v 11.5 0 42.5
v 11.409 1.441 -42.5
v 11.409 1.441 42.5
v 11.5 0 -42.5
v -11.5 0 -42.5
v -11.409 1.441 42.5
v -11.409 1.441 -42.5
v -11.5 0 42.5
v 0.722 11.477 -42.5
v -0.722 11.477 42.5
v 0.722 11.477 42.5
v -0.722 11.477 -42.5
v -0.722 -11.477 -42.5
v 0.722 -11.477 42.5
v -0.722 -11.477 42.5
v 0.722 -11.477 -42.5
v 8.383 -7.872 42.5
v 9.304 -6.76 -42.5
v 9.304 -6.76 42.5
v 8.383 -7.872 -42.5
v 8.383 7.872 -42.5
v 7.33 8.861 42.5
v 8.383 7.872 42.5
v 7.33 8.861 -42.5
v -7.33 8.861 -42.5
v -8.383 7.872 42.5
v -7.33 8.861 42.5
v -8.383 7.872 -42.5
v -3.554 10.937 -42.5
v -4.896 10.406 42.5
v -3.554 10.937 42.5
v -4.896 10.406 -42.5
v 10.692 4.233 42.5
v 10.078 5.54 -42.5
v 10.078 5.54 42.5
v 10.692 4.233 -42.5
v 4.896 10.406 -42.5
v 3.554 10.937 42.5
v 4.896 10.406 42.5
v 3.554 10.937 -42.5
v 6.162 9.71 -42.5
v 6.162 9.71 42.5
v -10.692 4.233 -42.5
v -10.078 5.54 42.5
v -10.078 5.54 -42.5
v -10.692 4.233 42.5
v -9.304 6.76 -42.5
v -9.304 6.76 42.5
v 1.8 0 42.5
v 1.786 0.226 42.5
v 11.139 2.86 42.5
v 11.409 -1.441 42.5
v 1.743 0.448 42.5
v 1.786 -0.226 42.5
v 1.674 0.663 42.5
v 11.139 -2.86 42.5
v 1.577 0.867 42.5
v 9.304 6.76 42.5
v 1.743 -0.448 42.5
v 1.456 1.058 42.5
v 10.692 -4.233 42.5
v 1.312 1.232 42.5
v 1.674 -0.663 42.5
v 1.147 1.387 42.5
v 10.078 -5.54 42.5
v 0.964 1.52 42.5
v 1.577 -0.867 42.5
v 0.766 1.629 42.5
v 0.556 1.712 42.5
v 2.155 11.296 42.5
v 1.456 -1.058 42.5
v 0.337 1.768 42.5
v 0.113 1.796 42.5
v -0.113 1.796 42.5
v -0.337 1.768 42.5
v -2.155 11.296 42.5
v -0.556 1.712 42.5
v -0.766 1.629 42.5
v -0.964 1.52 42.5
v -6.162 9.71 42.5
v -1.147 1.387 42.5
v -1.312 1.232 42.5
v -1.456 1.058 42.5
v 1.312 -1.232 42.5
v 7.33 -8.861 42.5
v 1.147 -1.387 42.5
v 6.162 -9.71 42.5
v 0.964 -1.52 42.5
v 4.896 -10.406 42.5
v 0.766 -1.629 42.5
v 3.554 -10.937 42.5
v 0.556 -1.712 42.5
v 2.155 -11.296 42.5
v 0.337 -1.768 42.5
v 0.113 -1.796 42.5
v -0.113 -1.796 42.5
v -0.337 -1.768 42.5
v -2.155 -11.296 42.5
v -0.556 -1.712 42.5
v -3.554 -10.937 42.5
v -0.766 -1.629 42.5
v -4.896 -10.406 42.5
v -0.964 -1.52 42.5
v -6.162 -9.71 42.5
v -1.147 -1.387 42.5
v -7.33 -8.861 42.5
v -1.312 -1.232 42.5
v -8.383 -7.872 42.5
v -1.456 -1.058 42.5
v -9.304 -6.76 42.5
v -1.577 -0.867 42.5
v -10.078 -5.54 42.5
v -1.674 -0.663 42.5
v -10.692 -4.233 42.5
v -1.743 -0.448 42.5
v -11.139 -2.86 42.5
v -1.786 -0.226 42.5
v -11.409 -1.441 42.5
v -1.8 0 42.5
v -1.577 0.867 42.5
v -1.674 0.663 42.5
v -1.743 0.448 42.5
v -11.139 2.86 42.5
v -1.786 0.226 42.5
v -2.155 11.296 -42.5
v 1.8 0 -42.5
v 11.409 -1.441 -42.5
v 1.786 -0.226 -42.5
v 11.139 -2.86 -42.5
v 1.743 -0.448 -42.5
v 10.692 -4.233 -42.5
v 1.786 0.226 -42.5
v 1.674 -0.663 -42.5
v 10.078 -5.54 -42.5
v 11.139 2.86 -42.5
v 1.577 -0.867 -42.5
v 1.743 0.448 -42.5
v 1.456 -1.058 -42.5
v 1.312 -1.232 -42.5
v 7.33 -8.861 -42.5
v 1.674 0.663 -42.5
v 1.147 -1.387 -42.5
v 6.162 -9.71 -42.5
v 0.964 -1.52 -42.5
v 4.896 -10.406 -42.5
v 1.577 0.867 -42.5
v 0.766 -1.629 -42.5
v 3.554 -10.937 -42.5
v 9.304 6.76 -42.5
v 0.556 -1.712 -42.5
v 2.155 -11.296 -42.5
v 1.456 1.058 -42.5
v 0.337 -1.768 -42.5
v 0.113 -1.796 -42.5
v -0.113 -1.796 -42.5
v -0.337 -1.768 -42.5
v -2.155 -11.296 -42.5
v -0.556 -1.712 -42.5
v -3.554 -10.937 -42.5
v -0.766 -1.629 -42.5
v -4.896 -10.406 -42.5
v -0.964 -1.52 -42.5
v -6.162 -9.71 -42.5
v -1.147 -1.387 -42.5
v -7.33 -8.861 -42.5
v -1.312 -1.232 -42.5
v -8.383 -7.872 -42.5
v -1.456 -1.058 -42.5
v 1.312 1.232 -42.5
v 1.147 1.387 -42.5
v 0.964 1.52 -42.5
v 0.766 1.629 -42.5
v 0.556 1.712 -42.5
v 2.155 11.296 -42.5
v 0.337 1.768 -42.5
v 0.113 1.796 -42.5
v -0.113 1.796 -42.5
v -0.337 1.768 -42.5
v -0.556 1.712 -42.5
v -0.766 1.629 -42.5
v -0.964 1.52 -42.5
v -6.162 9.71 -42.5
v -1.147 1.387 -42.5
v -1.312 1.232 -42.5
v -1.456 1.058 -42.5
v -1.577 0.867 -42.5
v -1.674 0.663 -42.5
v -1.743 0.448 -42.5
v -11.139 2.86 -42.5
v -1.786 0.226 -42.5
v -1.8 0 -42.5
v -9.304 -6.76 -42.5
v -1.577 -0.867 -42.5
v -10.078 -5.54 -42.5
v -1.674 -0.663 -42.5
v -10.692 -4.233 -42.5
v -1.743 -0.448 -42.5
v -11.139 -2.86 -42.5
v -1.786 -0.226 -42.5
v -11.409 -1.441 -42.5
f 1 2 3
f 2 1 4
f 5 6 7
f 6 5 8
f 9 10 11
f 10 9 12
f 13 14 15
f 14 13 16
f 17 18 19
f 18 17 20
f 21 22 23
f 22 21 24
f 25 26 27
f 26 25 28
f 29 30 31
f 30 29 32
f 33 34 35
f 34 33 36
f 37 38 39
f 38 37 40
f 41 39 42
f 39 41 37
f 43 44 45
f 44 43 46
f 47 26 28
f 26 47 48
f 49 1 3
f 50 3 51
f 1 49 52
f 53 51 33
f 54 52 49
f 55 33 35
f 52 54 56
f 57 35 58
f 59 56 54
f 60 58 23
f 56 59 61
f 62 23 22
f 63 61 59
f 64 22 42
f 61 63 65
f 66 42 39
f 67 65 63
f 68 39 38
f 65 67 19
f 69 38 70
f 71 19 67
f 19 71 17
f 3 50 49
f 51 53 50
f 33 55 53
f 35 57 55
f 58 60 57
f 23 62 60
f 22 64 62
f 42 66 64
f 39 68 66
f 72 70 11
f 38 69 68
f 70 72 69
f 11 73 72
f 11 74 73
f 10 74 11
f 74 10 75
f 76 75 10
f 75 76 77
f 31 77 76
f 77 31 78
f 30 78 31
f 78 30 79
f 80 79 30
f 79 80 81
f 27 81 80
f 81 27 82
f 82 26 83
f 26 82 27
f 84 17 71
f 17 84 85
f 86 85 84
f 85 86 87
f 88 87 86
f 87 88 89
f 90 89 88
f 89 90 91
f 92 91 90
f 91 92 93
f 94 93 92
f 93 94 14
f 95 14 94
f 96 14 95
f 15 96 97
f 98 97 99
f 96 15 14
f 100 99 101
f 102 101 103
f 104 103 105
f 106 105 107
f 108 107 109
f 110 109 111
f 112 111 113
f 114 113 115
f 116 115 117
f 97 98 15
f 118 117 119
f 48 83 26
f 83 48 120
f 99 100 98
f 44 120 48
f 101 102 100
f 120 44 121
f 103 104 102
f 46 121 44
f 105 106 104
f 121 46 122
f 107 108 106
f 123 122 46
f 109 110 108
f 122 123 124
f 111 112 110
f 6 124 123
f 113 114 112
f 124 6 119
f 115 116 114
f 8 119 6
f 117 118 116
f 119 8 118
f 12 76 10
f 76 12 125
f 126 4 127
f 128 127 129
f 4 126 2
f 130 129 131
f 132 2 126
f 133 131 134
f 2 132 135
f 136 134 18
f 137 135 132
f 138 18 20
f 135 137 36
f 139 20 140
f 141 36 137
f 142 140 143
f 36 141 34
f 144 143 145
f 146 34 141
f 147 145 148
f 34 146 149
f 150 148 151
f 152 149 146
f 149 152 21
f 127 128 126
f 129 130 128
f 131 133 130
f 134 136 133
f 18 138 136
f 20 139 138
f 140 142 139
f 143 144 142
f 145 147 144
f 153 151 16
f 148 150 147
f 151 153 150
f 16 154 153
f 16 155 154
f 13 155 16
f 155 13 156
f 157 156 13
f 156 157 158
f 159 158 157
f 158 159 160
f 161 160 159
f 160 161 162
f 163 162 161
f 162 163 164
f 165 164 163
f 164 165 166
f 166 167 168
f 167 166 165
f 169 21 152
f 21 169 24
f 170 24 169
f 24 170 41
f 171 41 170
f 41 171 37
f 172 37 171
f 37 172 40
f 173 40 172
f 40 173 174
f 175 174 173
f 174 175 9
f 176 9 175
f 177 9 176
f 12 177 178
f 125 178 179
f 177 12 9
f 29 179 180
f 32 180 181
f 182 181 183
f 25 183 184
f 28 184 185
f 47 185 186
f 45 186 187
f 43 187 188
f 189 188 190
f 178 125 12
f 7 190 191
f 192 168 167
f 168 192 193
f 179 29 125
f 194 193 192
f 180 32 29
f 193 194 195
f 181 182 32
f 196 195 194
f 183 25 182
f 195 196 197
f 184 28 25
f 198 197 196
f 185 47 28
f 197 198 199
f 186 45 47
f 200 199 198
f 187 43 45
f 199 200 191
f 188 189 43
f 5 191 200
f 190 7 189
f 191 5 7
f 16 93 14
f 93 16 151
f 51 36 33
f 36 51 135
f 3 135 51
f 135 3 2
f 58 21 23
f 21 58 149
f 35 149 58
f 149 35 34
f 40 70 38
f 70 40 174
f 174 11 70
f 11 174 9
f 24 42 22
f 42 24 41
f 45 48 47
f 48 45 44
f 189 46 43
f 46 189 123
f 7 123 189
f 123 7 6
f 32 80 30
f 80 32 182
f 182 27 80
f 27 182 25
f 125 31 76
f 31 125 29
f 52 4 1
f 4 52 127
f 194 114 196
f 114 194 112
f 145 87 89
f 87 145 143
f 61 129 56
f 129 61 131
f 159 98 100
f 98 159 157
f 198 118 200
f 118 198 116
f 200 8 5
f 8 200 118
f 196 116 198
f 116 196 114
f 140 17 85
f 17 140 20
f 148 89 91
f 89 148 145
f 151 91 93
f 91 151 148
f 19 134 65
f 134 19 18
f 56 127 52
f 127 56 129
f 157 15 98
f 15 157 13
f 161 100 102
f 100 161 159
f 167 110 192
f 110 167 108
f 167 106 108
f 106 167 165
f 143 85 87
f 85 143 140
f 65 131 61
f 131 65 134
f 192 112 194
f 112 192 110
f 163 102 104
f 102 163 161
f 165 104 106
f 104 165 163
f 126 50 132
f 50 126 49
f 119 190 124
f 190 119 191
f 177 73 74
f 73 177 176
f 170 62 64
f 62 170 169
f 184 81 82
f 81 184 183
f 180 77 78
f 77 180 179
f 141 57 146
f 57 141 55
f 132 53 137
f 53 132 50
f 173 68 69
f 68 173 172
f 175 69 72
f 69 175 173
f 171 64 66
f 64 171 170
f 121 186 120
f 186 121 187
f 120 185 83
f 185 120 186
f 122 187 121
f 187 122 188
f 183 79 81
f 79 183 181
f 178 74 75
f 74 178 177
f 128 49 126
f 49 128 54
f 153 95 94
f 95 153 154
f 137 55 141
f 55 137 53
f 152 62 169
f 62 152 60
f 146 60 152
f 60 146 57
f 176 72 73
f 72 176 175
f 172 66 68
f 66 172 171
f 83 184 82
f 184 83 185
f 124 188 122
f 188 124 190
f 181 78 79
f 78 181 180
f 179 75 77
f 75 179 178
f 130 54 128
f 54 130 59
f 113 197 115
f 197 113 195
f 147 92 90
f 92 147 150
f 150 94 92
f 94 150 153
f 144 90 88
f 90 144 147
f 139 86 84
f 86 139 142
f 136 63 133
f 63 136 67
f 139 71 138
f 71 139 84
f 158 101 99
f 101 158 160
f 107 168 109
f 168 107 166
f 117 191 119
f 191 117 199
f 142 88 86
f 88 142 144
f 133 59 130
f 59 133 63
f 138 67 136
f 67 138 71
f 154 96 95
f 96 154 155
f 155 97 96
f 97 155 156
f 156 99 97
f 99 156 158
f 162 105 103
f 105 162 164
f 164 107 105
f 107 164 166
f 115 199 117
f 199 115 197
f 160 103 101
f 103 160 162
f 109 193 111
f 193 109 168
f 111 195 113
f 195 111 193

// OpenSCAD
$fn = 50;


difference() {
	union() {
		translate(v = [0, 0, -42.5000000000]) {
			cylinder(h = 85, r = 11.5000000000);
		}
	}
	union() {
		translate(v = [0, 0, -100.0000000000]) {
			cylinder(h = 200, r = 1.8000000000);
		}
	}
}
